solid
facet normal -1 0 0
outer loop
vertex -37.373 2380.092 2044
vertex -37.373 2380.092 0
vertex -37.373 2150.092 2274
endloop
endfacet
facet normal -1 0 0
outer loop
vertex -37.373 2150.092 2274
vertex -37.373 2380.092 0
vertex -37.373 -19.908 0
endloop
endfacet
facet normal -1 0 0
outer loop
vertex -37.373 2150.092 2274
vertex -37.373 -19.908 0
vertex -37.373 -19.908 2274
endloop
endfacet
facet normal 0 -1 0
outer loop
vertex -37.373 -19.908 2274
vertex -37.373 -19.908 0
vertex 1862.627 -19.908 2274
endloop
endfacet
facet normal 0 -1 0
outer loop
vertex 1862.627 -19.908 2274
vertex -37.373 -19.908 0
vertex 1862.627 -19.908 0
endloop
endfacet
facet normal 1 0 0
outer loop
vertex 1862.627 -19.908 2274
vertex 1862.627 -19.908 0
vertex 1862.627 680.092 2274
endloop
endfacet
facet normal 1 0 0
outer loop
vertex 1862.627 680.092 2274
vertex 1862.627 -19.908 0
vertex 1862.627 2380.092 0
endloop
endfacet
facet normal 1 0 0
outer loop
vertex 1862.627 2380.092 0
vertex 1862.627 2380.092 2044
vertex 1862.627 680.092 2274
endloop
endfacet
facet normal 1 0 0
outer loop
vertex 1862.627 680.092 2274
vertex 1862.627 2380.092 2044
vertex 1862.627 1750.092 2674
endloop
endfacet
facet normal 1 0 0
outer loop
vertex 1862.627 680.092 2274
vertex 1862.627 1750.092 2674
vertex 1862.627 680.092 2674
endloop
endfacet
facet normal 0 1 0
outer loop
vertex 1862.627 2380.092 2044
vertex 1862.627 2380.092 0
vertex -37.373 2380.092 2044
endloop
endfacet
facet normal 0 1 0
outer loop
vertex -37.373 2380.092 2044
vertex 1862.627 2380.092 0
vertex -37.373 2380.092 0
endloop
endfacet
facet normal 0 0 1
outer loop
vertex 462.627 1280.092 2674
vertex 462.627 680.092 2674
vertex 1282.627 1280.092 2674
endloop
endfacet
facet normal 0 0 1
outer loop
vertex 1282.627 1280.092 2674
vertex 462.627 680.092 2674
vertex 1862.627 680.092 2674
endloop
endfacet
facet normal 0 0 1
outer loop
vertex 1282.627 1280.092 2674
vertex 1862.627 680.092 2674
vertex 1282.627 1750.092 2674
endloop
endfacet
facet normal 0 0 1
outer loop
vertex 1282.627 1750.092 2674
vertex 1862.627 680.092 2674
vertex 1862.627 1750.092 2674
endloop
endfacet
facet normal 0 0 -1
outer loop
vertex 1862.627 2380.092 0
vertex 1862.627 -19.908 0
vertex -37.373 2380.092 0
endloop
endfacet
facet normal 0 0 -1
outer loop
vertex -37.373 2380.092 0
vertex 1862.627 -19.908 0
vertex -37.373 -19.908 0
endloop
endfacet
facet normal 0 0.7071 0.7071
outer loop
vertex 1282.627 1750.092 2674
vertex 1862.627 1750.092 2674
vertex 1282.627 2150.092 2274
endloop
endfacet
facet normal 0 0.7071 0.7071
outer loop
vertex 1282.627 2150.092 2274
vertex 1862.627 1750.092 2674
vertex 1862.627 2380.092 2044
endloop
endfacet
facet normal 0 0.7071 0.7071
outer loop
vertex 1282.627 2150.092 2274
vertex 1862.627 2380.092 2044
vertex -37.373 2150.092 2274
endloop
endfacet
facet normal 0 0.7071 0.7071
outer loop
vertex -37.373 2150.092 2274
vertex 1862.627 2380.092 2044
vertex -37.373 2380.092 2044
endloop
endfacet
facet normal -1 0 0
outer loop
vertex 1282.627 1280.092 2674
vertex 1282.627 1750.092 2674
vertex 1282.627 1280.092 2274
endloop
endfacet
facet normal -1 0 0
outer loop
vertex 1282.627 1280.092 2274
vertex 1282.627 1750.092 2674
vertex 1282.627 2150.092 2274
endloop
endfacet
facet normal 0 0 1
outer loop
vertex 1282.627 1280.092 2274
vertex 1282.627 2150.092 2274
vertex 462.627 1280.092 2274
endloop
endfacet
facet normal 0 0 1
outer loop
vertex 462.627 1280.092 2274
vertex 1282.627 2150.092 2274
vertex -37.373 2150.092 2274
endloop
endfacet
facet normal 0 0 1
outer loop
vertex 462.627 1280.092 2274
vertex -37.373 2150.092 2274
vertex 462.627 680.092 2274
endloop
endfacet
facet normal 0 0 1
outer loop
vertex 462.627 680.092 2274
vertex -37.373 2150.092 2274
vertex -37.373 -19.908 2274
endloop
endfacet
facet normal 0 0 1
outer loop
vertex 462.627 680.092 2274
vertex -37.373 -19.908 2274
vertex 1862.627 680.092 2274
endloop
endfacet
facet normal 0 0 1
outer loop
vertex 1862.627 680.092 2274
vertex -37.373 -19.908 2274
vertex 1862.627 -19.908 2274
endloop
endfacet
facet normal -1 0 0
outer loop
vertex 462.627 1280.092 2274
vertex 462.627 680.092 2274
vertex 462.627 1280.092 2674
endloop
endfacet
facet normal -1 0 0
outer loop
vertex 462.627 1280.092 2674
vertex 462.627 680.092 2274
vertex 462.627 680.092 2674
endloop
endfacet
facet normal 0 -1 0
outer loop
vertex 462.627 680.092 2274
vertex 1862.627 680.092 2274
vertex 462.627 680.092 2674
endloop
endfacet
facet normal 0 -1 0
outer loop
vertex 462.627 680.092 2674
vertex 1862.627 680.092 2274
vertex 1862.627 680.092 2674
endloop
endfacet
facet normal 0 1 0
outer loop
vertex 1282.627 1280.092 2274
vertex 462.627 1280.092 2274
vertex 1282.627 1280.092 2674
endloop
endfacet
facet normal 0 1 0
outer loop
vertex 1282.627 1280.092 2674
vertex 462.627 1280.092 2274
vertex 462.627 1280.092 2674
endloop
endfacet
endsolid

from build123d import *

# Parameters (mm, degrees)
SKETCH_1_W          = 1900
SKETCH_1_H          = 2400
EXTRUDE_1_DEPTH     = 2674
CUT_EXTRUDE_1_DEPTH = 4053.790702473
CUT_EXTRUDE_2_DEPTH = 400


with BuildPart() as part:
    # ｽｹｯﾁ1 → ﾎﾞｽ - 押し出し1 (new body)
    with BuildSketch(Plane.XY):
        with Locations((912.626610361, 1180.091695304)):
            Rectangle(SKETCH_1_W, SKETCH_1_H)
    extrude(amount=EXTRUDE_1_DEPTH)

    # ｽｹｯﾁ2 → ｶｯﾄ - 押し出し1 (cut, through all)
    with BuildSketch(Plane(origin=(1862.626610361, 0, 0), x_dir=(0, 0, -1), z_dir=(1, 0, 0))):
        Polygon((-2674, 2380.091695304), (-2674, 1750.091695304), (-2044, 2380.091695304), align=None)
    extrude(amount=-CUT_EXTRUDE_1_DEPTH, mode=Mode.SUBTRACT)

    # ｽｹｯﾁ3 → ｶｯﾄ - 押し出し2 (cut)
    with BuildSketch(Plane.XY.offset(2674)):
        Polygon((462.626610361, 1280.091695304), (1282.626610361, 1280.091695304), (1282.626610361, 2380.091695304), (-37.373389639, 2380.091695304), (-37.373389639, -19.908304696), (462.626610361, -19.908304696), (1862.626610361, -19.908304696), (1862.626610361, 680.091695304), (462.626610361, 680.091695304), align=None)
    extrude(amount=-CUT_EXTRUDE_2_DEPTH, mode=Mode.SUBTRACT)


solid = part.part
